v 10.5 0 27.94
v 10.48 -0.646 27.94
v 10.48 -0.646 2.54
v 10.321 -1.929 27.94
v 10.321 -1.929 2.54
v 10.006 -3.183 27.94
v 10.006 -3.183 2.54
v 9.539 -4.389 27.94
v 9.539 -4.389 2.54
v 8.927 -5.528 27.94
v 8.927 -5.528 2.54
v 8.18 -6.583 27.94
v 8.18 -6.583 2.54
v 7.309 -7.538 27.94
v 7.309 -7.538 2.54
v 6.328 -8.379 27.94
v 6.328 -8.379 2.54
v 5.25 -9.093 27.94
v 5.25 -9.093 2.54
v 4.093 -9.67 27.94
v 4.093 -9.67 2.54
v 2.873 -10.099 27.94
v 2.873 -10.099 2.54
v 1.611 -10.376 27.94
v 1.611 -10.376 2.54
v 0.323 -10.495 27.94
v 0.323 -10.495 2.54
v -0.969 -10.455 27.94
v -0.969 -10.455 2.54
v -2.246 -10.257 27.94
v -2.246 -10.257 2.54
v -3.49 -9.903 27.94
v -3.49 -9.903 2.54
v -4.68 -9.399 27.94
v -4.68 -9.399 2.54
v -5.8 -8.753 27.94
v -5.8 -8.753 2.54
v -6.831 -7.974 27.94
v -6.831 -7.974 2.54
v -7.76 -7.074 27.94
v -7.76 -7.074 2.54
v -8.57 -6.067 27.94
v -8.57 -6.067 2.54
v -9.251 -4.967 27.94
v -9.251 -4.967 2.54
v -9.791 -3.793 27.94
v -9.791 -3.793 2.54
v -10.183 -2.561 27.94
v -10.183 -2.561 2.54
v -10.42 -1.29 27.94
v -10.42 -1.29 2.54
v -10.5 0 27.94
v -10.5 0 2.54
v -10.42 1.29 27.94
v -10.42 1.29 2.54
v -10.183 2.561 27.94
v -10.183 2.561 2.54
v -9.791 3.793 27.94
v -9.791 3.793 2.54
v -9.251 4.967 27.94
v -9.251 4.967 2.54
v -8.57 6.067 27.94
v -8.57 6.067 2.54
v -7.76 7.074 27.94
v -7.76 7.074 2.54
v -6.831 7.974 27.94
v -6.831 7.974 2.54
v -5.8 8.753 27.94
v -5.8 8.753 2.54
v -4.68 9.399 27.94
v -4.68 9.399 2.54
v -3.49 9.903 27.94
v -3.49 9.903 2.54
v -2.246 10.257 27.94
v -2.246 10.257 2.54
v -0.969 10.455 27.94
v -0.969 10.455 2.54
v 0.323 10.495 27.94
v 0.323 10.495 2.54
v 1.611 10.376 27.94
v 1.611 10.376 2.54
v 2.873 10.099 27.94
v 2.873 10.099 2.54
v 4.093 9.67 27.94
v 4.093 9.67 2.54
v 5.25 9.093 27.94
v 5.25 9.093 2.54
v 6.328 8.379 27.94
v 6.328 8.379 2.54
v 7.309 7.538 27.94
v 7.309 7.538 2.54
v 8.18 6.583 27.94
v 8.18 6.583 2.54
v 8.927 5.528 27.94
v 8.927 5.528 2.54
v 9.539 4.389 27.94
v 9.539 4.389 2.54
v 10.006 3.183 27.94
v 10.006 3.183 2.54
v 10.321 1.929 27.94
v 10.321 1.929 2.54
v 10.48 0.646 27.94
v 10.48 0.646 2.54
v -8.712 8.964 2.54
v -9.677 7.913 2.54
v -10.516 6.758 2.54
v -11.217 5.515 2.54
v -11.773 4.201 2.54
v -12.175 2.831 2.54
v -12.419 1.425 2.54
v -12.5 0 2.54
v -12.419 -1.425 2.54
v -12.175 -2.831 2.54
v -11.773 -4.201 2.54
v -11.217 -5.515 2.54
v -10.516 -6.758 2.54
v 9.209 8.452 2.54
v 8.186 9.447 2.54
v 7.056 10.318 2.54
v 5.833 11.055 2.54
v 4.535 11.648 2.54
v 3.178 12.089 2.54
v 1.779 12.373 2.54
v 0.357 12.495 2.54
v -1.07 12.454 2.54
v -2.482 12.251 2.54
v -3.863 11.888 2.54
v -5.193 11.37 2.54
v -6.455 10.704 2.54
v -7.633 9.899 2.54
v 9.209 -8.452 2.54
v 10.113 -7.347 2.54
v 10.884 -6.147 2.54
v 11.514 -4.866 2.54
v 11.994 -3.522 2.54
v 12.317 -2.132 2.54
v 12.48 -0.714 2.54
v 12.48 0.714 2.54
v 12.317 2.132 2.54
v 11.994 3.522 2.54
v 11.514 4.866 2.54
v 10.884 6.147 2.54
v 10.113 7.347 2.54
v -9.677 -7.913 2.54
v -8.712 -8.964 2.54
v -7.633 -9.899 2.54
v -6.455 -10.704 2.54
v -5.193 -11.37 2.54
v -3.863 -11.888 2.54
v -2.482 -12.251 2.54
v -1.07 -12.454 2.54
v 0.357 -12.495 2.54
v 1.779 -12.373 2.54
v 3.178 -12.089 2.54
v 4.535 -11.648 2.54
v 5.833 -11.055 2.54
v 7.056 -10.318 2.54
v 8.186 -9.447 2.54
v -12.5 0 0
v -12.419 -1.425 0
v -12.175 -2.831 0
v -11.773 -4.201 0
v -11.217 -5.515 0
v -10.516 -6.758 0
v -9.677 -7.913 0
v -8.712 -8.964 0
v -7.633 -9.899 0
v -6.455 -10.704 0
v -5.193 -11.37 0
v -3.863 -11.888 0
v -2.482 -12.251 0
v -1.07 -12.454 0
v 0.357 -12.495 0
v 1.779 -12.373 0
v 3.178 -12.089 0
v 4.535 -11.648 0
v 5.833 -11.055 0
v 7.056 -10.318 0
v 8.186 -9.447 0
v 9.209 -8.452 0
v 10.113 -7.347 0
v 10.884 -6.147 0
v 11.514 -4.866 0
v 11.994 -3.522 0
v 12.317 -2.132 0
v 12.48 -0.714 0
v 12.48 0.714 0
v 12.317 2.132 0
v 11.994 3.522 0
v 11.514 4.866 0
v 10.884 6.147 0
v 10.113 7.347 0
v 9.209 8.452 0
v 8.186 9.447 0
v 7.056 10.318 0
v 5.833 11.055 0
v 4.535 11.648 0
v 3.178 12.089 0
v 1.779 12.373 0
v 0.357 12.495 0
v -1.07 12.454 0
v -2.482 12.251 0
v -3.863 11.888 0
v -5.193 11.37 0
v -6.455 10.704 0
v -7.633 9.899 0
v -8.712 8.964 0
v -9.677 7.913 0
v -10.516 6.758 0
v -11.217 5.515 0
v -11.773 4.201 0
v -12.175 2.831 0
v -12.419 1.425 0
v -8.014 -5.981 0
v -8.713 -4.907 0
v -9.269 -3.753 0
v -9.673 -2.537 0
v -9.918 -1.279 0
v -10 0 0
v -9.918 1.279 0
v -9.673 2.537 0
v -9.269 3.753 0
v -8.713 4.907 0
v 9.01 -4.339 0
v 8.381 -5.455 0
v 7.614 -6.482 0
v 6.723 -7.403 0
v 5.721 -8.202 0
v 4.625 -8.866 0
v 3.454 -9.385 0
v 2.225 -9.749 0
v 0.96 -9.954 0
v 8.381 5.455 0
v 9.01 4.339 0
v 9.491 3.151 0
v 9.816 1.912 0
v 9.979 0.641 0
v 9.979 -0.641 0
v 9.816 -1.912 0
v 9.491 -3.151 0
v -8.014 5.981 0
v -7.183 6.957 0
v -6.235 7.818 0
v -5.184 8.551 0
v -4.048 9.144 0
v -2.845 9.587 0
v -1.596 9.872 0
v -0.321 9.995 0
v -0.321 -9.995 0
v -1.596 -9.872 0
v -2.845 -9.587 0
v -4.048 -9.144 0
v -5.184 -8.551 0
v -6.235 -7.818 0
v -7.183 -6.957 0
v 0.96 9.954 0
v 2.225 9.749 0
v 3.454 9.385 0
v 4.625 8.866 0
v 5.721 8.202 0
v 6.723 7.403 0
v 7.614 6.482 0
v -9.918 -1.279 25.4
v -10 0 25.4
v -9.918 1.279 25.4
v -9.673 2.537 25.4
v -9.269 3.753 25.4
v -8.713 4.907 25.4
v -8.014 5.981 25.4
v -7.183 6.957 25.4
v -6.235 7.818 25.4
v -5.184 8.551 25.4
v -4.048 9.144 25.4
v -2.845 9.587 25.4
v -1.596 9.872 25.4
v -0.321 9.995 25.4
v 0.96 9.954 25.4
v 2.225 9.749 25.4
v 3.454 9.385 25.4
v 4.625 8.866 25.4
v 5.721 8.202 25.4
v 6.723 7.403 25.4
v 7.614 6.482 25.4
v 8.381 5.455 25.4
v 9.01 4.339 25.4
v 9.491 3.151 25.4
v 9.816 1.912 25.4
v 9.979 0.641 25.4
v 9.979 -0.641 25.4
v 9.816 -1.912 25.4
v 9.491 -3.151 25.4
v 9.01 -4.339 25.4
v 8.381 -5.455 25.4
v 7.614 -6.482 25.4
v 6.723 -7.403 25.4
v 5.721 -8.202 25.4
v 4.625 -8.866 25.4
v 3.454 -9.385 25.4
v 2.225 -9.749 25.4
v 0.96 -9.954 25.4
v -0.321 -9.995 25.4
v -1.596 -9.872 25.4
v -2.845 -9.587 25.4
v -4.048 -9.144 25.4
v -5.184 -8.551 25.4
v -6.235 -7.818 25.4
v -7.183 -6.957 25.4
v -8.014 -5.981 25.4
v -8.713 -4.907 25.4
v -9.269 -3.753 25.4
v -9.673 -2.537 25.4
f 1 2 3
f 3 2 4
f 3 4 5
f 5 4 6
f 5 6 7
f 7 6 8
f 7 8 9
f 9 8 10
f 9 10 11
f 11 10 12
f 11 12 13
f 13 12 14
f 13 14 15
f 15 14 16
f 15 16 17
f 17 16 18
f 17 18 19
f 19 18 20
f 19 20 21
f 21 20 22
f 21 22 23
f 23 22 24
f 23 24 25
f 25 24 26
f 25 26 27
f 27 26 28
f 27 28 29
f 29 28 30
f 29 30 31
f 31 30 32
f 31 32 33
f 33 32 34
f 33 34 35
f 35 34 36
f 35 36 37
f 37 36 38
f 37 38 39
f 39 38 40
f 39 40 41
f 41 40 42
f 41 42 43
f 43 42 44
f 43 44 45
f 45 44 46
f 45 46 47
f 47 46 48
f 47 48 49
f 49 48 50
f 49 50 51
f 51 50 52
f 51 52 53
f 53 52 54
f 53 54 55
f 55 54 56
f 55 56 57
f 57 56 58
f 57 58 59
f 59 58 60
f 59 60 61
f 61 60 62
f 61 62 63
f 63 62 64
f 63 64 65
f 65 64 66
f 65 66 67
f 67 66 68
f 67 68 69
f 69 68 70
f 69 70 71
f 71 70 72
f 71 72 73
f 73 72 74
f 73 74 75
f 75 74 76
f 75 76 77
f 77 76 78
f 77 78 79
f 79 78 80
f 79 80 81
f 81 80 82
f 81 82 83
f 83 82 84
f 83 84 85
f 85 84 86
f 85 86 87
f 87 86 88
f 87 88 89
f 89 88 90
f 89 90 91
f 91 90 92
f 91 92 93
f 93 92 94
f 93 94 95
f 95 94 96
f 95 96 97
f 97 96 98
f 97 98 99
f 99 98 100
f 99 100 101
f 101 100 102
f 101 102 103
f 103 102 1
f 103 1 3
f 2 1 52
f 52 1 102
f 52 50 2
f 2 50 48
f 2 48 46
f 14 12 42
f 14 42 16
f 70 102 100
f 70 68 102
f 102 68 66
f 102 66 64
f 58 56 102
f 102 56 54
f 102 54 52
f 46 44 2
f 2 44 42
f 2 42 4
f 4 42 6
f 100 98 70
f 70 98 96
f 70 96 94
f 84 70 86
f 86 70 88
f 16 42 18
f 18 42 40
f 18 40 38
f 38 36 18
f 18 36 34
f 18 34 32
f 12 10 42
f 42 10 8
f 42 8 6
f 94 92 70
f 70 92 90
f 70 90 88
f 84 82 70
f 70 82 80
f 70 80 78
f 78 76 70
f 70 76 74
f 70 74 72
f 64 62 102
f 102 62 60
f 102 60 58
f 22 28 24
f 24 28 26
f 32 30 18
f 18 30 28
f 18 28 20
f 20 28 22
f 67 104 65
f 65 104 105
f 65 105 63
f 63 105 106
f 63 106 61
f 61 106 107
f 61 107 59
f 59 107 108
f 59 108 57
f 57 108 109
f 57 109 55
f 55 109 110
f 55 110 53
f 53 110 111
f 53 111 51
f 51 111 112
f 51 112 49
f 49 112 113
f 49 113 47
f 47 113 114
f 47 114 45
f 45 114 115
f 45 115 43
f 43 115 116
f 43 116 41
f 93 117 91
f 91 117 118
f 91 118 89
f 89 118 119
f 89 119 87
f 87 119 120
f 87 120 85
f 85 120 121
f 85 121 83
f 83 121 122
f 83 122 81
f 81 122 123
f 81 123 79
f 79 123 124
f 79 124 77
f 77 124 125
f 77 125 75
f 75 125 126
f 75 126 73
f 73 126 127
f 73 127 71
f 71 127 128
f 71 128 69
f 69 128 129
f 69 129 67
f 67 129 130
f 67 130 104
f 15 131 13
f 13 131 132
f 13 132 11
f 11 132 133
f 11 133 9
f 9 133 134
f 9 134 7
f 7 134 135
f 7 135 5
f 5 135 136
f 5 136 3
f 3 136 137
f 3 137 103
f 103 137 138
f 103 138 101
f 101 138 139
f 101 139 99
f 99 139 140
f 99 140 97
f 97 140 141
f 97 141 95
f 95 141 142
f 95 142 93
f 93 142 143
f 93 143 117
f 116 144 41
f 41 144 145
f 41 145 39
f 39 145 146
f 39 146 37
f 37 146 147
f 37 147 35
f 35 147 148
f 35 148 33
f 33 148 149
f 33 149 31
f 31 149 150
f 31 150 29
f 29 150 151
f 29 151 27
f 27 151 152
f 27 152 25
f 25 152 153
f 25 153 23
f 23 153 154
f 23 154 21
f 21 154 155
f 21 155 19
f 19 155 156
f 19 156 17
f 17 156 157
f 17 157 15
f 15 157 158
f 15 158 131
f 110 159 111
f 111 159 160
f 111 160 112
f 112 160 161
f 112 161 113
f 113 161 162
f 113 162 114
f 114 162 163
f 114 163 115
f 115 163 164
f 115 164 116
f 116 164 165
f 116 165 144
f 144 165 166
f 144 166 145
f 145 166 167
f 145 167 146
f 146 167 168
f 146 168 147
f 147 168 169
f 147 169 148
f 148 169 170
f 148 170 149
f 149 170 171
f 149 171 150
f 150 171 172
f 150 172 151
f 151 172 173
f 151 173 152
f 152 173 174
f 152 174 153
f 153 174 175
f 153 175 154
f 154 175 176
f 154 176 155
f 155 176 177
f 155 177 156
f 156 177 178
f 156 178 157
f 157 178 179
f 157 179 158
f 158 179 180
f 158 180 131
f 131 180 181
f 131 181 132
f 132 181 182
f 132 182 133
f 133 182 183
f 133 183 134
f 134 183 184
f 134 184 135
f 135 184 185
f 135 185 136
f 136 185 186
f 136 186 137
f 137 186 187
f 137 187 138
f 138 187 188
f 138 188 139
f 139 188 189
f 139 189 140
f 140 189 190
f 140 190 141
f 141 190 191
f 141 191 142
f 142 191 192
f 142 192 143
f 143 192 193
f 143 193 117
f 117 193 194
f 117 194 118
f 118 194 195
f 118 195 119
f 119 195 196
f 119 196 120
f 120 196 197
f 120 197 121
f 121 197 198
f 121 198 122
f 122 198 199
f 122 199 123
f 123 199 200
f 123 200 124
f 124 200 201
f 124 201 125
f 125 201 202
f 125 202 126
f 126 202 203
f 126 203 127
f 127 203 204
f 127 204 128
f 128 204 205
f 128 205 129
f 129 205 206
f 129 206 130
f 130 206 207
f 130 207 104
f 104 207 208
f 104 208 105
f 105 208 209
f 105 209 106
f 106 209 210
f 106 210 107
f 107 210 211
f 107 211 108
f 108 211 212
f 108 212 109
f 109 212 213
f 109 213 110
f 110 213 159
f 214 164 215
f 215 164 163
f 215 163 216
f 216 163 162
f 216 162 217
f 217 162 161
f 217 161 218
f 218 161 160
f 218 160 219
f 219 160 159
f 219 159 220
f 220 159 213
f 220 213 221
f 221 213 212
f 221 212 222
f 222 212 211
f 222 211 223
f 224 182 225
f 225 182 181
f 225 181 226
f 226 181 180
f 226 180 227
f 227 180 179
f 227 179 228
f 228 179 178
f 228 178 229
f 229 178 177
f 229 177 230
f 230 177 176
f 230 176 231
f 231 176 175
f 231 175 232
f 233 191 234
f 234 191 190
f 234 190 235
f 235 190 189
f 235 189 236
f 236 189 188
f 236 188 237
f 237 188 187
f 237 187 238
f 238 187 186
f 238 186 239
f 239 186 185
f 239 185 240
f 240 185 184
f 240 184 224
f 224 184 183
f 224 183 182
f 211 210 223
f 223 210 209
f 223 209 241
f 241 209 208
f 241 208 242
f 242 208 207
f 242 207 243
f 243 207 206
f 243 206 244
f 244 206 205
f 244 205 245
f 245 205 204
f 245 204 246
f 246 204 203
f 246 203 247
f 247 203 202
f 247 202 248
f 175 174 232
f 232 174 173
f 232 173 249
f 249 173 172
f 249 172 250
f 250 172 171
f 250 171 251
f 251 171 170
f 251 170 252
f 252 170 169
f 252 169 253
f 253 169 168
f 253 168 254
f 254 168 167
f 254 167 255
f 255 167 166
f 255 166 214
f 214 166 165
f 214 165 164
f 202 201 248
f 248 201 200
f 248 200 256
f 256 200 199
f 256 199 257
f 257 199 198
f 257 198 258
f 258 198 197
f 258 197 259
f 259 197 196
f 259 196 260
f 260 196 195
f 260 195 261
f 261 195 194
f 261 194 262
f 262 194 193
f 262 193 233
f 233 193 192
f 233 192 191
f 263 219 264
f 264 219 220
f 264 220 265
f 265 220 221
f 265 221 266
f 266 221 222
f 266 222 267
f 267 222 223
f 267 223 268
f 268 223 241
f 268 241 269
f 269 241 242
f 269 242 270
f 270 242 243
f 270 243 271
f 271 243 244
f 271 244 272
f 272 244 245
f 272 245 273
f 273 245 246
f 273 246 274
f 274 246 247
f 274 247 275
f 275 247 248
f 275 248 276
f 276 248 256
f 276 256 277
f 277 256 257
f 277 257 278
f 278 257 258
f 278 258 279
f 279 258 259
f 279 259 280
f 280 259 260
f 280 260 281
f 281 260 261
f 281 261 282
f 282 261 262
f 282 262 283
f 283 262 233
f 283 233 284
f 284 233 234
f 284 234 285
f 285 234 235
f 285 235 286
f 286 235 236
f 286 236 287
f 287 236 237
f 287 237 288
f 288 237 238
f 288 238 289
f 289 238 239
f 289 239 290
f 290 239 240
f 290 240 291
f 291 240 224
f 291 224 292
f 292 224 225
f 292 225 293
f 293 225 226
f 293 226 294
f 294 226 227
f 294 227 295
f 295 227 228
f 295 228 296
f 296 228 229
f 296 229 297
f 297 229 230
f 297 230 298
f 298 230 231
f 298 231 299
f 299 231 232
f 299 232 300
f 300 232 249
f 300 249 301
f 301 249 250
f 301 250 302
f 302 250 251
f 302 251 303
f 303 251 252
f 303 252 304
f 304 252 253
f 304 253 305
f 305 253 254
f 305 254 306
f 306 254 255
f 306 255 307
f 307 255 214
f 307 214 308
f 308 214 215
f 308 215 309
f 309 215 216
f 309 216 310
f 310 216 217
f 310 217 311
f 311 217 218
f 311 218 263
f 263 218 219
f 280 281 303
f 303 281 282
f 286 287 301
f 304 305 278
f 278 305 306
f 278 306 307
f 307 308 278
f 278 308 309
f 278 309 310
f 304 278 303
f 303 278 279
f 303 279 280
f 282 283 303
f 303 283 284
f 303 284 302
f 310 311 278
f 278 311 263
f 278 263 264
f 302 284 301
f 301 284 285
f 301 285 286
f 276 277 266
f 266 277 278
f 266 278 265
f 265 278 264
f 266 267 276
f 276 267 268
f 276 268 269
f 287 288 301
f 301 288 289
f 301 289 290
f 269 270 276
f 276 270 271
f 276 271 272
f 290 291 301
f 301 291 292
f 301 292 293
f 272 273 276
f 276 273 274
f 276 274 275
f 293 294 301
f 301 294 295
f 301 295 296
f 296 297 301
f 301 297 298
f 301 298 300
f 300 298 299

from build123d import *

# Parameters (mm, degrees)
SKETCH1_R           = 10.5
BOSS_EXTRUDE2_DEPTH = 27.94
SKETCH2_R           = 12.5
BOSS_EXTRUDE3_DEPTH = 2.54
SKETCH3_R           = 10
CUT_EXTRUDE2_DEPTH  = 25.4


with BuildPart() as part:
    # Sketch1 → Boss-Extrude2 (new body)
    with BuildSketch(Plane.XY):
        Circle(SKETCH1_R)
    extrude(amount=BOSS_EXTRUDE2_DEPTH)

    # Sketch2 → Boss-Extrude3 (add)
    with BuildSketch(Plane(origin=(0, 0, 0), x_dir=(-1, 0, 0), z_dir=(0, 0, -1))):
        Circle(SKETCH2_R)
    extrude(amount=-BOSS_EXTRUDE3_DEPTH)

    # Sketch3 → Cut-Extrude2 (cut)
    with BuildSketch(Plane(origin=(0, 0, 0), x_dir=(-1, 0, 0), z_dir=(0, 0, -1))):
        Circle(SKETCH3_R)
    extrude(amount=-CUT_EXTRUDE2_DEPTH, mode=Mode.SUBTRACT)


solid = part.part
